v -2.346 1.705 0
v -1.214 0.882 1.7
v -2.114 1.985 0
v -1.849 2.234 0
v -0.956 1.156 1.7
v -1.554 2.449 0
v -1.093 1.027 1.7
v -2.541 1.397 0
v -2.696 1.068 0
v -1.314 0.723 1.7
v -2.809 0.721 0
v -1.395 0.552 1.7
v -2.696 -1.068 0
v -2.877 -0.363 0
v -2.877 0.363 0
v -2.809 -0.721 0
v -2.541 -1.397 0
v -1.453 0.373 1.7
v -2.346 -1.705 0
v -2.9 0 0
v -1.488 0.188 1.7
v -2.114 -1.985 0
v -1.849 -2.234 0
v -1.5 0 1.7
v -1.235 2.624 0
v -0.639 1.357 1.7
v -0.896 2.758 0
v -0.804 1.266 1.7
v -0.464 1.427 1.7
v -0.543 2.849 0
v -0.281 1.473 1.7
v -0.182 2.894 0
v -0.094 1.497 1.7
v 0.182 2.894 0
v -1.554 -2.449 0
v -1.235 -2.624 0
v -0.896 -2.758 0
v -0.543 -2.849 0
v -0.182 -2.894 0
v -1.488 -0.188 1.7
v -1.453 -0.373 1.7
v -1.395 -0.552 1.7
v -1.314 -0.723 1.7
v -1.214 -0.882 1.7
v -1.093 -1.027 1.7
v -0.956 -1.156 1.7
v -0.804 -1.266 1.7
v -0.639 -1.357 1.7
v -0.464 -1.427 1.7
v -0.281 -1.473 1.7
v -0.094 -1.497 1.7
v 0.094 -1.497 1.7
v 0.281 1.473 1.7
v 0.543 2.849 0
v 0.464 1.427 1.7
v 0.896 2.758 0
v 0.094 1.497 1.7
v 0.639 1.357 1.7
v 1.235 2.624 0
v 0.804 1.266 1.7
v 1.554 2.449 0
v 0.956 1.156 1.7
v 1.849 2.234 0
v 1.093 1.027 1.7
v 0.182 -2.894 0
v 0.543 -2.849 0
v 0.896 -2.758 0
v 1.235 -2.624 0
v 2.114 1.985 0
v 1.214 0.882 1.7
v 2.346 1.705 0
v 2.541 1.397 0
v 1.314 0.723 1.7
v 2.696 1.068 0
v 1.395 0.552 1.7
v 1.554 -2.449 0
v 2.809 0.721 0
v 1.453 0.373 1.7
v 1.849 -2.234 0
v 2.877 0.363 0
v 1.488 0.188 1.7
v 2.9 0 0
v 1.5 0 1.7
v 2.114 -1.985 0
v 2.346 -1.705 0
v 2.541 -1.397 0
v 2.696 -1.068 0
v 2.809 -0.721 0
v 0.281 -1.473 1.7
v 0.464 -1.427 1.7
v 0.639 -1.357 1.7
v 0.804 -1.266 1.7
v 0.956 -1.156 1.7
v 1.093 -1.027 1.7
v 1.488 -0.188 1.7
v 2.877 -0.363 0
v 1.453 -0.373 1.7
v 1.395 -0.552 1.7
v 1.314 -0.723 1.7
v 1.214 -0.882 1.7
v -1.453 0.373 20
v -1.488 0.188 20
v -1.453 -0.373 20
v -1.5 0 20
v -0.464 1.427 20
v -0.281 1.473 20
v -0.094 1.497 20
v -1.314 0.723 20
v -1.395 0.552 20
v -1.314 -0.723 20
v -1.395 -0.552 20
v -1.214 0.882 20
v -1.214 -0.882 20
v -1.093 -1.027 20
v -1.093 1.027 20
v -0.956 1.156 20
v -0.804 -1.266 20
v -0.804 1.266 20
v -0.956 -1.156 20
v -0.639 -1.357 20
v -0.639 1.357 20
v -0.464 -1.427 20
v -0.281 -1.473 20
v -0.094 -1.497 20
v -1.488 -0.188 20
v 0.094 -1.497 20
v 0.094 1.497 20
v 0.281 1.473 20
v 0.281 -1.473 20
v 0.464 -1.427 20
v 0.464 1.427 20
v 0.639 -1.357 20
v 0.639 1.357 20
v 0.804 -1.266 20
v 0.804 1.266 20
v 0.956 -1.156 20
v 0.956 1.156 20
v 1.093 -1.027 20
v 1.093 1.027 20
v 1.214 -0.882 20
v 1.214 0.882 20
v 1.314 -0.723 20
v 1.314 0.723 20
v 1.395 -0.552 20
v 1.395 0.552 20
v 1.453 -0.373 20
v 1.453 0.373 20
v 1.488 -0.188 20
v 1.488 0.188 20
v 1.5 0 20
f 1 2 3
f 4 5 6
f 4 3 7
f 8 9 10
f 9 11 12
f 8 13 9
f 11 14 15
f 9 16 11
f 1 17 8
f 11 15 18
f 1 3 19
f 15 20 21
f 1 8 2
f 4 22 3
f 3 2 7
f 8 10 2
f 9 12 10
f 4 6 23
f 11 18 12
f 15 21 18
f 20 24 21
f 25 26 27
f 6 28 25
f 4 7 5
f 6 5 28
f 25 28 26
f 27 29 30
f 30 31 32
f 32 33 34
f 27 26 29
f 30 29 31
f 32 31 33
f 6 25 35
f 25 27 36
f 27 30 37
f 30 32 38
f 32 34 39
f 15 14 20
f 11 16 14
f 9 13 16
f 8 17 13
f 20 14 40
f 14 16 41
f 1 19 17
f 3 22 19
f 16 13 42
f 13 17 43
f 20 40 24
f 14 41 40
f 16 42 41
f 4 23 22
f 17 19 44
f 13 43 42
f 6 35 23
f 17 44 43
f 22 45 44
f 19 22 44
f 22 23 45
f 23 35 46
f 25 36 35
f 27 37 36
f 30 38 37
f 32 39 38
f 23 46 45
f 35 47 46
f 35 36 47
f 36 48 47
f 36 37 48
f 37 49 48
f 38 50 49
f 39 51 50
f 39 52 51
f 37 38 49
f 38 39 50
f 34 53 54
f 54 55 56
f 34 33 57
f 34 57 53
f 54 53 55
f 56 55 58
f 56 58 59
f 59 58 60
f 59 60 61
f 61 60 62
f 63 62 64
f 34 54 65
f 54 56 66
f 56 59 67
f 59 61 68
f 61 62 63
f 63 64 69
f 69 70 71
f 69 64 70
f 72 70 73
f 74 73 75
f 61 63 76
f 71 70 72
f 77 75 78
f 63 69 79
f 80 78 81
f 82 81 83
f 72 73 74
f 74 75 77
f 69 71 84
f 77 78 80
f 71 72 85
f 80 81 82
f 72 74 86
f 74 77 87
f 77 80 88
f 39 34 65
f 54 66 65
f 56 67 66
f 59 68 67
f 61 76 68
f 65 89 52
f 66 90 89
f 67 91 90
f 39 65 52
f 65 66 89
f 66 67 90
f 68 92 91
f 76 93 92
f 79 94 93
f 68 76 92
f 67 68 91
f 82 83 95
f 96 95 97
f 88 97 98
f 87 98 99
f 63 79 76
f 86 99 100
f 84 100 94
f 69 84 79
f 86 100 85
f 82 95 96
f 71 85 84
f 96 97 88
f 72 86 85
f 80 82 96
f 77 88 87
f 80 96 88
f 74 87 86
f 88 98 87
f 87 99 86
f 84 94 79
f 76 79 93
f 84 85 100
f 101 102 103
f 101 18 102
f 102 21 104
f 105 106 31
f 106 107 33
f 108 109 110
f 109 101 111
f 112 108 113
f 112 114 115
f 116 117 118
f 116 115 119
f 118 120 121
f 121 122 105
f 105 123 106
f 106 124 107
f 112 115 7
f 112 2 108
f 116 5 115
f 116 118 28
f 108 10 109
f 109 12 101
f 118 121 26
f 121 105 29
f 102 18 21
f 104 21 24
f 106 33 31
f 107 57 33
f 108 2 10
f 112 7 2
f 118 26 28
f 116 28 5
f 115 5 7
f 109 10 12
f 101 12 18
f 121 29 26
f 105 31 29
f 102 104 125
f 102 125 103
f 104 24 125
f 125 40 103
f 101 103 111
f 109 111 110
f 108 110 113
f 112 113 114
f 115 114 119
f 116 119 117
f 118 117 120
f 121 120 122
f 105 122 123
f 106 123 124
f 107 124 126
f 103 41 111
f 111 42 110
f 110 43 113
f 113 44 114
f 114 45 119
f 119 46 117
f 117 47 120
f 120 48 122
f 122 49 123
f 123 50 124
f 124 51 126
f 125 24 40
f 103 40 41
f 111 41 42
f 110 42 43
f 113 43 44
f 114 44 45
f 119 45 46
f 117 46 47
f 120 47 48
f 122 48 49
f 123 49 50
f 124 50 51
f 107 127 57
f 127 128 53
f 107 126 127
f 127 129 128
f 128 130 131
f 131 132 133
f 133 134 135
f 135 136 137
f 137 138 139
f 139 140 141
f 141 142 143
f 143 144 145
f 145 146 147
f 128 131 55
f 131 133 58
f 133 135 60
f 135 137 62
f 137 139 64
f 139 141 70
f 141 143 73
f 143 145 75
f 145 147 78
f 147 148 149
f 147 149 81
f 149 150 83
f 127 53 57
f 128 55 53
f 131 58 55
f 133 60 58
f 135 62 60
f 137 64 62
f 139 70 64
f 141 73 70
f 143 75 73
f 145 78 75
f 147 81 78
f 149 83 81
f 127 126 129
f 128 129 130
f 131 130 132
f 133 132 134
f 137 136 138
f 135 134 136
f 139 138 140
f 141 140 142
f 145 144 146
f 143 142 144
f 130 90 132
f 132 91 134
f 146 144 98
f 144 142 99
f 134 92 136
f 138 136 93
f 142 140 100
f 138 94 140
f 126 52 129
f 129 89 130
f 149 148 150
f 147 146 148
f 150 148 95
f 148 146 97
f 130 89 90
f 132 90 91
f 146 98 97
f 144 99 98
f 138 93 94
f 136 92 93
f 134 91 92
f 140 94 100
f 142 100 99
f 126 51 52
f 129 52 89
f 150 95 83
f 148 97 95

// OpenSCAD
$fn = 50;

difference() {
	union() {
		translate(v = [0, 0, 0]) {
			rotate(a = [180, 0, 0]) {
				difference() {
					union() {
						translate(v = [0, 0, -1.7]) {
							cylinder(h = 1.7, r1 = 1.5, r2 = 2.9);
						}
						translate(v = [0, 0, -20.0]) {
							cylinder(h = 20.0, r = 1.5);
						}
					}
					union();
				}
			}
		}
	}
	union();
}
